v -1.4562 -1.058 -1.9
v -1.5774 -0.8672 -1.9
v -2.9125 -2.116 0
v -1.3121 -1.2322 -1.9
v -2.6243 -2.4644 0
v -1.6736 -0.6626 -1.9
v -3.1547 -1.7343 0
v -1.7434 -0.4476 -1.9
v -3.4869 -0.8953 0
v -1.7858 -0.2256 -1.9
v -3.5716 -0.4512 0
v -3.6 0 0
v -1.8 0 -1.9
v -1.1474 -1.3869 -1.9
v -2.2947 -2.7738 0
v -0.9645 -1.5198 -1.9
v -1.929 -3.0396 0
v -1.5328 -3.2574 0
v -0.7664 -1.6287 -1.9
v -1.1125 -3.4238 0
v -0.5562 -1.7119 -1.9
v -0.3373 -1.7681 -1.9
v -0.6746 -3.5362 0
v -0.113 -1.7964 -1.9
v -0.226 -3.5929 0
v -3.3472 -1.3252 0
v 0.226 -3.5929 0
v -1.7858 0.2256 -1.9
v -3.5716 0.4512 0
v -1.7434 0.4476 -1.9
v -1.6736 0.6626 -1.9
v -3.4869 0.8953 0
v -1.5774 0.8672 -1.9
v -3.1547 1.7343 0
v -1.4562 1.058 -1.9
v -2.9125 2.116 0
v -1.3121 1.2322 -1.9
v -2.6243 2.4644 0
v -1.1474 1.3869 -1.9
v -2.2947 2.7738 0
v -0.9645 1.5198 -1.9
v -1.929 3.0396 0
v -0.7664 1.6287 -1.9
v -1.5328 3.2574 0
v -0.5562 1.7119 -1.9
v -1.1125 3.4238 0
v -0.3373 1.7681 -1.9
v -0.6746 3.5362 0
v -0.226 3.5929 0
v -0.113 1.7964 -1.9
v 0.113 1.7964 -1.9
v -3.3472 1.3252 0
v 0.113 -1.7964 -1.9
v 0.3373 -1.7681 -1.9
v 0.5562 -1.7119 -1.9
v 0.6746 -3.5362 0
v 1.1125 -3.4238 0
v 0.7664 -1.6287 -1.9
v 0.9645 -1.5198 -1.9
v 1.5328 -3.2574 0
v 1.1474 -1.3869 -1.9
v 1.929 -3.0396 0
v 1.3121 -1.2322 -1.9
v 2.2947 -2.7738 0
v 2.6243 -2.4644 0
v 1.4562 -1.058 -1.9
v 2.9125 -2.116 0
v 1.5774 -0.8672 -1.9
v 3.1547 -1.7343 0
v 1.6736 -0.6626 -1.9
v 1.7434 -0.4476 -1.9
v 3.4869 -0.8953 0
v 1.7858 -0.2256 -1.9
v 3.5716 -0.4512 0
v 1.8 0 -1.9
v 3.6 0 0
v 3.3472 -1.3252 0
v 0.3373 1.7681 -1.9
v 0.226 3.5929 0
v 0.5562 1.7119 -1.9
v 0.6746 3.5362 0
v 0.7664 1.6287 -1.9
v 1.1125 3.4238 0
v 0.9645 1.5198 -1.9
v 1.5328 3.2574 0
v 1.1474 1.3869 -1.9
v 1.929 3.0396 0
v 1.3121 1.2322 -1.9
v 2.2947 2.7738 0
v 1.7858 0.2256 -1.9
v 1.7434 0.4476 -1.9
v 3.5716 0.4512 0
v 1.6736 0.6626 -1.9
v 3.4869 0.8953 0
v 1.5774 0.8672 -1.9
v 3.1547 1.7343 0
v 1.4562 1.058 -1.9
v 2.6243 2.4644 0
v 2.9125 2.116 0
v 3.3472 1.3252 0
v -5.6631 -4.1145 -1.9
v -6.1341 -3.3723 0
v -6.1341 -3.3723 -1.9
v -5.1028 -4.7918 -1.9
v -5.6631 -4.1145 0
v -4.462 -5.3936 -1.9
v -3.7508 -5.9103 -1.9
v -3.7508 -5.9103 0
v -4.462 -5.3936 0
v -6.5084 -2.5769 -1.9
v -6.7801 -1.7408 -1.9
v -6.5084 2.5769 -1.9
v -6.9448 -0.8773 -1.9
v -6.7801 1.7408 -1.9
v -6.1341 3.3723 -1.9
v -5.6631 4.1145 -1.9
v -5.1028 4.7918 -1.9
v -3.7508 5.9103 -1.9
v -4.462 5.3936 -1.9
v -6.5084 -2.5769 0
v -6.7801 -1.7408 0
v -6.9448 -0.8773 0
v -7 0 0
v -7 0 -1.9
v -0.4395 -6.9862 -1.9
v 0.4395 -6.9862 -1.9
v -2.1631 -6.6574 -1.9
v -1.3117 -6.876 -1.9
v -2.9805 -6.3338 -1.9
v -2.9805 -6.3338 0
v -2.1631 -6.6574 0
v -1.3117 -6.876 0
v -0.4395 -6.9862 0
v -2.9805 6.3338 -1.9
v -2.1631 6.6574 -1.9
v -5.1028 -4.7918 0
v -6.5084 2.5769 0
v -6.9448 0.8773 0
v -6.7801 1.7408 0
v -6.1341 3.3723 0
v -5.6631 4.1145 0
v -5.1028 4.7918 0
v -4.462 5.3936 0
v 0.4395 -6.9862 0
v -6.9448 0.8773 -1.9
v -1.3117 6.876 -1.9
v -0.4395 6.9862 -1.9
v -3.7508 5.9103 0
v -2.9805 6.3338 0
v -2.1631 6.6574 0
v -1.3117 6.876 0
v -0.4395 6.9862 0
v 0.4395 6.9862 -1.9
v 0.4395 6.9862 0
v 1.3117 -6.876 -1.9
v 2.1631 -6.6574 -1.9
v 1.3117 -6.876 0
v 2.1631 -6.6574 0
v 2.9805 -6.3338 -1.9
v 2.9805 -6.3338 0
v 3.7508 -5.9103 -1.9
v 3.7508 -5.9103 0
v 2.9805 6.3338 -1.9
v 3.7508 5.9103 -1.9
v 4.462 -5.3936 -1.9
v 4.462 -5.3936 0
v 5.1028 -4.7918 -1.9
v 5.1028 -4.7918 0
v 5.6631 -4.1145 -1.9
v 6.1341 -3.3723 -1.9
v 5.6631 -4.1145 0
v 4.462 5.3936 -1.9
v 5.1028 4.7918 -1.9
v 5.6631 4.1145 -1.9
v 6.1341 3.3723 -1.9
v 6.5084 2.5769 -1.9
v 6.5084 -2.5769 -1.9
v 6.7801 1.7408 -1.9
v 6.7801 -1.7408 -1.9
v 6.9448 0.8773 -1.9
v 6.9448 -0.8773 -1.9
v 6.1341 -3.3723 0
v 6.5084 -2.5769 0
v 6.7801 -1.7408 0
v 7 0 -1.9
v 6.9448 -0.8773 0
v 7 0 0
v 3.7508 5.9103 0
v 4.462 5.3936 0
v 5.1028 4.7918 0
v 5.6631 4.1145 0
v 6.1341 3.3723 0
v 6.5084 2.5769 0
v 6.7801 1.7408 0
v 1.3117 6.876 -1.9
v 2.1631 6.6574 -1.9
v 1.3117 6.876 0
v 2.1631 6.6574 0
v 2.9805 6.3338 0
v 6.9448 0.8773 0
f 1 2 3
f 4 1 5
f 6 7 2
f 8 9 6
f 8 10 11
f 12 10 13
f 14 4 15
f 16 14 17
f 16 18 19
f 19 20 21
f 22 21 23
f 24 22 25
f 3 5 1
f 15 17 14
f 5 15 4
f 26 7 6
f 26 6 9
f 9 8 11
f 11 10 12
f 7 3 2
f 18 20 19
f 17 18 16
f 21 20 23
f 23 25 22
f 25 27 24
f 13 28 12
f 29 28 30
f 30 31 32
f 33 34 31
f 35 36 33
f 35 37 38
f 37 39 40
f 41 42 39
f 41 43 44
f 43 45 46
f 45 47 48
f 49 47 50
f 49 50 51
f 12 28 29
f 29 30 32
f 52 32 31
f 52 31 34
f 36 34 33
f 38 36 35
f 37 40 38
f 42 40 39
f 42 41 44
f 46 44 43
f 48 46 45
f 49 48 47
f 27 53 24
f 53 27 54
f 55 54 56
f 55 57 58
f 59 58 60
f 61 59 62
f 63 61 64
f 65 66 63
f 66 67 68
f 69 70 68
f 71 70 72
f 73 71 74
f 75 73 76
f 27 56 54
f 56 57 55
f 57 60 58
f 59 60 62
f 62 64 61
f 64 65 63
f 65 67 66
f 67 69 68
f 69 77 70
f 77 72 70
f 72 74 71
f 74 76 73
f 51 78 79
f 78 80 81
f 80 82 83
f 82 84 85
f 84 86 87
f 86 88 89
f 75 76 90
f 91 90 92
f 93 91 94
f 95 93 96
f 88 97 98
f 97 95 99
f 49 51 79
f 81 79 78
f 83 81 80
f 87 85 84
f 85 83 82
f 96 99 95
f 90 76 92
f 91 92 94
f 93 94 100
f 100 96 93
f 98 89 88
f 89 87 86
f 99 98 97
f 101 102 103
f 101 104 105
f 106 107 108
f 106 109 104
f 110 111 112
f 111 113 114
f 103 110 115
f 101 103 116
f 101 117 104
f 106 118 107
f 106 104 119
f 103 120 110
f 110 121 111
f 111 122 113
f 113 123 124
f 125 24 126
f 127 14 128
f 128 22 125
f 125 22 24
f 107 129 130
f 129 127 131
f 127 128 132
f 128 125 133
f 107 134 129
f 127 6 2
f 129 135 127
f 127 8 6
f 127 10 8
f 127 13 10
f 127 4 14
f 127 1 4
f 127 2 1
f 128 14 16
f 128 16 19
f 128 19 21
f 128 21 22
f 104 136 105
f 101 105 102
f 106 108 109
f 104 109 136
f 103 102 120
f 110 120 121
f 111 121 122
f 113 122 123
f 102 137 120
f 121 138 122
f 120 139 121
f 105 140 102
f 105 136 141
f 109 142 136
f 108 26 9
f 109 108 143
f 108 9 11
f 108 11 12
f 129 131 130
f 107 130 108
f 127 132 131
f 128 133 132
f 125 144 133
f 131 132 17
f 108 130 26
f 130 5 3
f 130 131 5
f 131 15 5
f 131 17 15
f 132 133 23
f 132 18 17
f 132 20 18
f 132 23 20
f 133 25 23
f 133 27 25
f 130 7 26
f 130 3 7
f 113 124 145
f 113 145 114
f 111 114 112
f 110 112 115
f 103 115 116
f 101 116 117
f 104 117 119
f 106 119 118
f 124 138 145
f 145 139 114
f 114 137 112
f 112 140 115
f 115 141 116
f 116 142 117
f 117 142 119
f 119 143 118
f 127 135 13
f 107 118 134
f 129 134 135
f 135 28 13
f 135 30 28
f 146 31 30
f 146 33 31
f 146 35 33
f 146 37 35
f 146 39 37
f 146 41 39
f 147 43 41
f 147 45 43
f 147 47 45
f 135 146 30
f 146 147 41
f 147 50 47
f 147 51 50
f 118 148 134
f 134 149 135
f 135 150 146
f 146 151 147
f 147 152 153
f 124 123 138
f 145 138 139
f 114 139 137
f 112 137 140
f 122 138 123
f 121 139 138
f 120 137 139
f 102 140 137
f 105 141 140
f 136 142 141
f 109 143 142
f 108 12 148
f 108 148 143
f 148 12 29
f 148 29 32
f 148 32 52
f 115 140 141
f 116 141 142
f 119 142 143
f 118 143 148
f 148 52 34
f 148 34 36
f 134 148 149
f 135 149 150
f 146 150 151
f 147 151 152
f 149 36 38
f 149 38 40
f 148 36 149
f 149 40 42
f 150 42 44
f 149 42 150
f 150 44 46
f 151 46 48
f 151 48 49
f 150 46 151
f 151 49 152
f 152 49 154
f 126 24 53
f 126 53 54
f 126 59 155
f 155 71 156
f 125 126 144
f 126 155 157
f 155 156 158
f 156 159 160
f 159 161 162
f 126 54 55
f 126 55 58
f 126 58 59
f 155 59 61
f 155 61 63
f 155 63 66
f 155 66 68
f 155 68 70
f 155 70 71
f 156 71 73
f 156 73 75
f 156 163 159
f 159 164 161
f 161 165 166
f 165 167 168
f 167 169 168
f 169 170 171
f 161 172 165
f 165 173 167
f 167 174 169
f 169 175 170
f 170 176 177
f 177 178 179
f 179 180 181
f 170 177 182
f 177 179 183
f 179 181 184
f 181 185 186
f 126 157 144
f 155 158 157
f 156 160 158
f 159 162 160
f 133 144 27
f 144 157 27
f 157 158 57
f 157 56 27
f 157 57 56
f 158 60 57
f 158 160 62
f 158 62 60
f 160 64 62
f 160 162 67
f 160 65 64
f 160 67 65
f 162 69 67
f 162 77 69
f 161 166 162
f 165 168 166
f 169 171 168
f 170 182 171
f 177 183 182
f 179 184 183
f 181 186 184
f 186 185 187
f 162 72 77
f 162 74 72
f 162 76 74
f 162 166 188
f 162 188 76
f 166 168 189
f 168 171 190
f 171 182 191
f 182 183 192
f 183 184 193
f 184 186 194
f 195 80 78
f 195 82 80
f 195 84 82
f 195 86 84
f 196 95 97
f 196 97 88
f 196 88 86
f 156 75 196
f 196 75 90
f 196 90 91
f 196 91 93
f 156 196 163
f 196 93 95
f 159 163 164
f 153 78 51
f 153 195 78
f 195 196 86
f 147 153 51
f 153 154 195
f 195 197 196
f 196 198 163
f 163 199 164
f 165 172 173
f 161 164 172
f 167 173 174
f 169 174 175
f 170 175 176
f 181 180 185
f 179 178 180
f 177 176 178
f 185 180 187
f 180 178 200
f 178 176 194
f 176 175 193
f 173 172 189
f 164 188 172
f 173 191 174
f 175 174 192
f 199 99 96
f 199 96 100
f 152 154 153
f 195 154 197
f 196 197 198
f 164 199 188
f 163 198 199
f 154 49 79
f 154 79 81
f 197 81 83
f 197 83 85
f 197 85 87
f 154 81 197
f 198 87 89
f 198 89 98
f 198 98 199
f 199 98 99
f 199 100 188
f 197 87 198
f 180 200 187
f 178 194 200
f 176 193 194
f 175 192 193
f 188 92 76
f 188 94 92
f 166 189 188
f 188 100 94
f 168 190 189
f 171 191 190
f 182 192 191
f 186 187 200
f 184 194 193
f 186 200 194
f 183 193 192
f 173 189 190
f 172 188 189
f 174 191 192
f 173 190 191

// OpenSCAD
$fn = 50;

difference() {
	union() {
		translate(v = [0, 0, -1.9]) {
			cylinder(h = 1.9, r = 7.0);
		}
	}
	union() {
		translate(v = [0, 0, 0]) {
			rotate(a = [0, 0, 0]) {
				difference() {
					union() {
						translate(v = [0, 0, -4.9]) {
							cylinder(h = 4.9, r = 1.5);
						}
						translate(v = [0, 0, -1.9]) {
							cylinder(h = 1.9, r1 = 1.8, r2 = 3.6);
						}
						translate(v = [0, 0, -4.9]) {
							cylinder(h = 4.9, r = 1.8);
						}
						translate(v = [0, 0, -4.9]) {
							cylinder(h = 4.9, r = 1.5);
						}
					}
					union();
				}
			}
		}
	}
}
